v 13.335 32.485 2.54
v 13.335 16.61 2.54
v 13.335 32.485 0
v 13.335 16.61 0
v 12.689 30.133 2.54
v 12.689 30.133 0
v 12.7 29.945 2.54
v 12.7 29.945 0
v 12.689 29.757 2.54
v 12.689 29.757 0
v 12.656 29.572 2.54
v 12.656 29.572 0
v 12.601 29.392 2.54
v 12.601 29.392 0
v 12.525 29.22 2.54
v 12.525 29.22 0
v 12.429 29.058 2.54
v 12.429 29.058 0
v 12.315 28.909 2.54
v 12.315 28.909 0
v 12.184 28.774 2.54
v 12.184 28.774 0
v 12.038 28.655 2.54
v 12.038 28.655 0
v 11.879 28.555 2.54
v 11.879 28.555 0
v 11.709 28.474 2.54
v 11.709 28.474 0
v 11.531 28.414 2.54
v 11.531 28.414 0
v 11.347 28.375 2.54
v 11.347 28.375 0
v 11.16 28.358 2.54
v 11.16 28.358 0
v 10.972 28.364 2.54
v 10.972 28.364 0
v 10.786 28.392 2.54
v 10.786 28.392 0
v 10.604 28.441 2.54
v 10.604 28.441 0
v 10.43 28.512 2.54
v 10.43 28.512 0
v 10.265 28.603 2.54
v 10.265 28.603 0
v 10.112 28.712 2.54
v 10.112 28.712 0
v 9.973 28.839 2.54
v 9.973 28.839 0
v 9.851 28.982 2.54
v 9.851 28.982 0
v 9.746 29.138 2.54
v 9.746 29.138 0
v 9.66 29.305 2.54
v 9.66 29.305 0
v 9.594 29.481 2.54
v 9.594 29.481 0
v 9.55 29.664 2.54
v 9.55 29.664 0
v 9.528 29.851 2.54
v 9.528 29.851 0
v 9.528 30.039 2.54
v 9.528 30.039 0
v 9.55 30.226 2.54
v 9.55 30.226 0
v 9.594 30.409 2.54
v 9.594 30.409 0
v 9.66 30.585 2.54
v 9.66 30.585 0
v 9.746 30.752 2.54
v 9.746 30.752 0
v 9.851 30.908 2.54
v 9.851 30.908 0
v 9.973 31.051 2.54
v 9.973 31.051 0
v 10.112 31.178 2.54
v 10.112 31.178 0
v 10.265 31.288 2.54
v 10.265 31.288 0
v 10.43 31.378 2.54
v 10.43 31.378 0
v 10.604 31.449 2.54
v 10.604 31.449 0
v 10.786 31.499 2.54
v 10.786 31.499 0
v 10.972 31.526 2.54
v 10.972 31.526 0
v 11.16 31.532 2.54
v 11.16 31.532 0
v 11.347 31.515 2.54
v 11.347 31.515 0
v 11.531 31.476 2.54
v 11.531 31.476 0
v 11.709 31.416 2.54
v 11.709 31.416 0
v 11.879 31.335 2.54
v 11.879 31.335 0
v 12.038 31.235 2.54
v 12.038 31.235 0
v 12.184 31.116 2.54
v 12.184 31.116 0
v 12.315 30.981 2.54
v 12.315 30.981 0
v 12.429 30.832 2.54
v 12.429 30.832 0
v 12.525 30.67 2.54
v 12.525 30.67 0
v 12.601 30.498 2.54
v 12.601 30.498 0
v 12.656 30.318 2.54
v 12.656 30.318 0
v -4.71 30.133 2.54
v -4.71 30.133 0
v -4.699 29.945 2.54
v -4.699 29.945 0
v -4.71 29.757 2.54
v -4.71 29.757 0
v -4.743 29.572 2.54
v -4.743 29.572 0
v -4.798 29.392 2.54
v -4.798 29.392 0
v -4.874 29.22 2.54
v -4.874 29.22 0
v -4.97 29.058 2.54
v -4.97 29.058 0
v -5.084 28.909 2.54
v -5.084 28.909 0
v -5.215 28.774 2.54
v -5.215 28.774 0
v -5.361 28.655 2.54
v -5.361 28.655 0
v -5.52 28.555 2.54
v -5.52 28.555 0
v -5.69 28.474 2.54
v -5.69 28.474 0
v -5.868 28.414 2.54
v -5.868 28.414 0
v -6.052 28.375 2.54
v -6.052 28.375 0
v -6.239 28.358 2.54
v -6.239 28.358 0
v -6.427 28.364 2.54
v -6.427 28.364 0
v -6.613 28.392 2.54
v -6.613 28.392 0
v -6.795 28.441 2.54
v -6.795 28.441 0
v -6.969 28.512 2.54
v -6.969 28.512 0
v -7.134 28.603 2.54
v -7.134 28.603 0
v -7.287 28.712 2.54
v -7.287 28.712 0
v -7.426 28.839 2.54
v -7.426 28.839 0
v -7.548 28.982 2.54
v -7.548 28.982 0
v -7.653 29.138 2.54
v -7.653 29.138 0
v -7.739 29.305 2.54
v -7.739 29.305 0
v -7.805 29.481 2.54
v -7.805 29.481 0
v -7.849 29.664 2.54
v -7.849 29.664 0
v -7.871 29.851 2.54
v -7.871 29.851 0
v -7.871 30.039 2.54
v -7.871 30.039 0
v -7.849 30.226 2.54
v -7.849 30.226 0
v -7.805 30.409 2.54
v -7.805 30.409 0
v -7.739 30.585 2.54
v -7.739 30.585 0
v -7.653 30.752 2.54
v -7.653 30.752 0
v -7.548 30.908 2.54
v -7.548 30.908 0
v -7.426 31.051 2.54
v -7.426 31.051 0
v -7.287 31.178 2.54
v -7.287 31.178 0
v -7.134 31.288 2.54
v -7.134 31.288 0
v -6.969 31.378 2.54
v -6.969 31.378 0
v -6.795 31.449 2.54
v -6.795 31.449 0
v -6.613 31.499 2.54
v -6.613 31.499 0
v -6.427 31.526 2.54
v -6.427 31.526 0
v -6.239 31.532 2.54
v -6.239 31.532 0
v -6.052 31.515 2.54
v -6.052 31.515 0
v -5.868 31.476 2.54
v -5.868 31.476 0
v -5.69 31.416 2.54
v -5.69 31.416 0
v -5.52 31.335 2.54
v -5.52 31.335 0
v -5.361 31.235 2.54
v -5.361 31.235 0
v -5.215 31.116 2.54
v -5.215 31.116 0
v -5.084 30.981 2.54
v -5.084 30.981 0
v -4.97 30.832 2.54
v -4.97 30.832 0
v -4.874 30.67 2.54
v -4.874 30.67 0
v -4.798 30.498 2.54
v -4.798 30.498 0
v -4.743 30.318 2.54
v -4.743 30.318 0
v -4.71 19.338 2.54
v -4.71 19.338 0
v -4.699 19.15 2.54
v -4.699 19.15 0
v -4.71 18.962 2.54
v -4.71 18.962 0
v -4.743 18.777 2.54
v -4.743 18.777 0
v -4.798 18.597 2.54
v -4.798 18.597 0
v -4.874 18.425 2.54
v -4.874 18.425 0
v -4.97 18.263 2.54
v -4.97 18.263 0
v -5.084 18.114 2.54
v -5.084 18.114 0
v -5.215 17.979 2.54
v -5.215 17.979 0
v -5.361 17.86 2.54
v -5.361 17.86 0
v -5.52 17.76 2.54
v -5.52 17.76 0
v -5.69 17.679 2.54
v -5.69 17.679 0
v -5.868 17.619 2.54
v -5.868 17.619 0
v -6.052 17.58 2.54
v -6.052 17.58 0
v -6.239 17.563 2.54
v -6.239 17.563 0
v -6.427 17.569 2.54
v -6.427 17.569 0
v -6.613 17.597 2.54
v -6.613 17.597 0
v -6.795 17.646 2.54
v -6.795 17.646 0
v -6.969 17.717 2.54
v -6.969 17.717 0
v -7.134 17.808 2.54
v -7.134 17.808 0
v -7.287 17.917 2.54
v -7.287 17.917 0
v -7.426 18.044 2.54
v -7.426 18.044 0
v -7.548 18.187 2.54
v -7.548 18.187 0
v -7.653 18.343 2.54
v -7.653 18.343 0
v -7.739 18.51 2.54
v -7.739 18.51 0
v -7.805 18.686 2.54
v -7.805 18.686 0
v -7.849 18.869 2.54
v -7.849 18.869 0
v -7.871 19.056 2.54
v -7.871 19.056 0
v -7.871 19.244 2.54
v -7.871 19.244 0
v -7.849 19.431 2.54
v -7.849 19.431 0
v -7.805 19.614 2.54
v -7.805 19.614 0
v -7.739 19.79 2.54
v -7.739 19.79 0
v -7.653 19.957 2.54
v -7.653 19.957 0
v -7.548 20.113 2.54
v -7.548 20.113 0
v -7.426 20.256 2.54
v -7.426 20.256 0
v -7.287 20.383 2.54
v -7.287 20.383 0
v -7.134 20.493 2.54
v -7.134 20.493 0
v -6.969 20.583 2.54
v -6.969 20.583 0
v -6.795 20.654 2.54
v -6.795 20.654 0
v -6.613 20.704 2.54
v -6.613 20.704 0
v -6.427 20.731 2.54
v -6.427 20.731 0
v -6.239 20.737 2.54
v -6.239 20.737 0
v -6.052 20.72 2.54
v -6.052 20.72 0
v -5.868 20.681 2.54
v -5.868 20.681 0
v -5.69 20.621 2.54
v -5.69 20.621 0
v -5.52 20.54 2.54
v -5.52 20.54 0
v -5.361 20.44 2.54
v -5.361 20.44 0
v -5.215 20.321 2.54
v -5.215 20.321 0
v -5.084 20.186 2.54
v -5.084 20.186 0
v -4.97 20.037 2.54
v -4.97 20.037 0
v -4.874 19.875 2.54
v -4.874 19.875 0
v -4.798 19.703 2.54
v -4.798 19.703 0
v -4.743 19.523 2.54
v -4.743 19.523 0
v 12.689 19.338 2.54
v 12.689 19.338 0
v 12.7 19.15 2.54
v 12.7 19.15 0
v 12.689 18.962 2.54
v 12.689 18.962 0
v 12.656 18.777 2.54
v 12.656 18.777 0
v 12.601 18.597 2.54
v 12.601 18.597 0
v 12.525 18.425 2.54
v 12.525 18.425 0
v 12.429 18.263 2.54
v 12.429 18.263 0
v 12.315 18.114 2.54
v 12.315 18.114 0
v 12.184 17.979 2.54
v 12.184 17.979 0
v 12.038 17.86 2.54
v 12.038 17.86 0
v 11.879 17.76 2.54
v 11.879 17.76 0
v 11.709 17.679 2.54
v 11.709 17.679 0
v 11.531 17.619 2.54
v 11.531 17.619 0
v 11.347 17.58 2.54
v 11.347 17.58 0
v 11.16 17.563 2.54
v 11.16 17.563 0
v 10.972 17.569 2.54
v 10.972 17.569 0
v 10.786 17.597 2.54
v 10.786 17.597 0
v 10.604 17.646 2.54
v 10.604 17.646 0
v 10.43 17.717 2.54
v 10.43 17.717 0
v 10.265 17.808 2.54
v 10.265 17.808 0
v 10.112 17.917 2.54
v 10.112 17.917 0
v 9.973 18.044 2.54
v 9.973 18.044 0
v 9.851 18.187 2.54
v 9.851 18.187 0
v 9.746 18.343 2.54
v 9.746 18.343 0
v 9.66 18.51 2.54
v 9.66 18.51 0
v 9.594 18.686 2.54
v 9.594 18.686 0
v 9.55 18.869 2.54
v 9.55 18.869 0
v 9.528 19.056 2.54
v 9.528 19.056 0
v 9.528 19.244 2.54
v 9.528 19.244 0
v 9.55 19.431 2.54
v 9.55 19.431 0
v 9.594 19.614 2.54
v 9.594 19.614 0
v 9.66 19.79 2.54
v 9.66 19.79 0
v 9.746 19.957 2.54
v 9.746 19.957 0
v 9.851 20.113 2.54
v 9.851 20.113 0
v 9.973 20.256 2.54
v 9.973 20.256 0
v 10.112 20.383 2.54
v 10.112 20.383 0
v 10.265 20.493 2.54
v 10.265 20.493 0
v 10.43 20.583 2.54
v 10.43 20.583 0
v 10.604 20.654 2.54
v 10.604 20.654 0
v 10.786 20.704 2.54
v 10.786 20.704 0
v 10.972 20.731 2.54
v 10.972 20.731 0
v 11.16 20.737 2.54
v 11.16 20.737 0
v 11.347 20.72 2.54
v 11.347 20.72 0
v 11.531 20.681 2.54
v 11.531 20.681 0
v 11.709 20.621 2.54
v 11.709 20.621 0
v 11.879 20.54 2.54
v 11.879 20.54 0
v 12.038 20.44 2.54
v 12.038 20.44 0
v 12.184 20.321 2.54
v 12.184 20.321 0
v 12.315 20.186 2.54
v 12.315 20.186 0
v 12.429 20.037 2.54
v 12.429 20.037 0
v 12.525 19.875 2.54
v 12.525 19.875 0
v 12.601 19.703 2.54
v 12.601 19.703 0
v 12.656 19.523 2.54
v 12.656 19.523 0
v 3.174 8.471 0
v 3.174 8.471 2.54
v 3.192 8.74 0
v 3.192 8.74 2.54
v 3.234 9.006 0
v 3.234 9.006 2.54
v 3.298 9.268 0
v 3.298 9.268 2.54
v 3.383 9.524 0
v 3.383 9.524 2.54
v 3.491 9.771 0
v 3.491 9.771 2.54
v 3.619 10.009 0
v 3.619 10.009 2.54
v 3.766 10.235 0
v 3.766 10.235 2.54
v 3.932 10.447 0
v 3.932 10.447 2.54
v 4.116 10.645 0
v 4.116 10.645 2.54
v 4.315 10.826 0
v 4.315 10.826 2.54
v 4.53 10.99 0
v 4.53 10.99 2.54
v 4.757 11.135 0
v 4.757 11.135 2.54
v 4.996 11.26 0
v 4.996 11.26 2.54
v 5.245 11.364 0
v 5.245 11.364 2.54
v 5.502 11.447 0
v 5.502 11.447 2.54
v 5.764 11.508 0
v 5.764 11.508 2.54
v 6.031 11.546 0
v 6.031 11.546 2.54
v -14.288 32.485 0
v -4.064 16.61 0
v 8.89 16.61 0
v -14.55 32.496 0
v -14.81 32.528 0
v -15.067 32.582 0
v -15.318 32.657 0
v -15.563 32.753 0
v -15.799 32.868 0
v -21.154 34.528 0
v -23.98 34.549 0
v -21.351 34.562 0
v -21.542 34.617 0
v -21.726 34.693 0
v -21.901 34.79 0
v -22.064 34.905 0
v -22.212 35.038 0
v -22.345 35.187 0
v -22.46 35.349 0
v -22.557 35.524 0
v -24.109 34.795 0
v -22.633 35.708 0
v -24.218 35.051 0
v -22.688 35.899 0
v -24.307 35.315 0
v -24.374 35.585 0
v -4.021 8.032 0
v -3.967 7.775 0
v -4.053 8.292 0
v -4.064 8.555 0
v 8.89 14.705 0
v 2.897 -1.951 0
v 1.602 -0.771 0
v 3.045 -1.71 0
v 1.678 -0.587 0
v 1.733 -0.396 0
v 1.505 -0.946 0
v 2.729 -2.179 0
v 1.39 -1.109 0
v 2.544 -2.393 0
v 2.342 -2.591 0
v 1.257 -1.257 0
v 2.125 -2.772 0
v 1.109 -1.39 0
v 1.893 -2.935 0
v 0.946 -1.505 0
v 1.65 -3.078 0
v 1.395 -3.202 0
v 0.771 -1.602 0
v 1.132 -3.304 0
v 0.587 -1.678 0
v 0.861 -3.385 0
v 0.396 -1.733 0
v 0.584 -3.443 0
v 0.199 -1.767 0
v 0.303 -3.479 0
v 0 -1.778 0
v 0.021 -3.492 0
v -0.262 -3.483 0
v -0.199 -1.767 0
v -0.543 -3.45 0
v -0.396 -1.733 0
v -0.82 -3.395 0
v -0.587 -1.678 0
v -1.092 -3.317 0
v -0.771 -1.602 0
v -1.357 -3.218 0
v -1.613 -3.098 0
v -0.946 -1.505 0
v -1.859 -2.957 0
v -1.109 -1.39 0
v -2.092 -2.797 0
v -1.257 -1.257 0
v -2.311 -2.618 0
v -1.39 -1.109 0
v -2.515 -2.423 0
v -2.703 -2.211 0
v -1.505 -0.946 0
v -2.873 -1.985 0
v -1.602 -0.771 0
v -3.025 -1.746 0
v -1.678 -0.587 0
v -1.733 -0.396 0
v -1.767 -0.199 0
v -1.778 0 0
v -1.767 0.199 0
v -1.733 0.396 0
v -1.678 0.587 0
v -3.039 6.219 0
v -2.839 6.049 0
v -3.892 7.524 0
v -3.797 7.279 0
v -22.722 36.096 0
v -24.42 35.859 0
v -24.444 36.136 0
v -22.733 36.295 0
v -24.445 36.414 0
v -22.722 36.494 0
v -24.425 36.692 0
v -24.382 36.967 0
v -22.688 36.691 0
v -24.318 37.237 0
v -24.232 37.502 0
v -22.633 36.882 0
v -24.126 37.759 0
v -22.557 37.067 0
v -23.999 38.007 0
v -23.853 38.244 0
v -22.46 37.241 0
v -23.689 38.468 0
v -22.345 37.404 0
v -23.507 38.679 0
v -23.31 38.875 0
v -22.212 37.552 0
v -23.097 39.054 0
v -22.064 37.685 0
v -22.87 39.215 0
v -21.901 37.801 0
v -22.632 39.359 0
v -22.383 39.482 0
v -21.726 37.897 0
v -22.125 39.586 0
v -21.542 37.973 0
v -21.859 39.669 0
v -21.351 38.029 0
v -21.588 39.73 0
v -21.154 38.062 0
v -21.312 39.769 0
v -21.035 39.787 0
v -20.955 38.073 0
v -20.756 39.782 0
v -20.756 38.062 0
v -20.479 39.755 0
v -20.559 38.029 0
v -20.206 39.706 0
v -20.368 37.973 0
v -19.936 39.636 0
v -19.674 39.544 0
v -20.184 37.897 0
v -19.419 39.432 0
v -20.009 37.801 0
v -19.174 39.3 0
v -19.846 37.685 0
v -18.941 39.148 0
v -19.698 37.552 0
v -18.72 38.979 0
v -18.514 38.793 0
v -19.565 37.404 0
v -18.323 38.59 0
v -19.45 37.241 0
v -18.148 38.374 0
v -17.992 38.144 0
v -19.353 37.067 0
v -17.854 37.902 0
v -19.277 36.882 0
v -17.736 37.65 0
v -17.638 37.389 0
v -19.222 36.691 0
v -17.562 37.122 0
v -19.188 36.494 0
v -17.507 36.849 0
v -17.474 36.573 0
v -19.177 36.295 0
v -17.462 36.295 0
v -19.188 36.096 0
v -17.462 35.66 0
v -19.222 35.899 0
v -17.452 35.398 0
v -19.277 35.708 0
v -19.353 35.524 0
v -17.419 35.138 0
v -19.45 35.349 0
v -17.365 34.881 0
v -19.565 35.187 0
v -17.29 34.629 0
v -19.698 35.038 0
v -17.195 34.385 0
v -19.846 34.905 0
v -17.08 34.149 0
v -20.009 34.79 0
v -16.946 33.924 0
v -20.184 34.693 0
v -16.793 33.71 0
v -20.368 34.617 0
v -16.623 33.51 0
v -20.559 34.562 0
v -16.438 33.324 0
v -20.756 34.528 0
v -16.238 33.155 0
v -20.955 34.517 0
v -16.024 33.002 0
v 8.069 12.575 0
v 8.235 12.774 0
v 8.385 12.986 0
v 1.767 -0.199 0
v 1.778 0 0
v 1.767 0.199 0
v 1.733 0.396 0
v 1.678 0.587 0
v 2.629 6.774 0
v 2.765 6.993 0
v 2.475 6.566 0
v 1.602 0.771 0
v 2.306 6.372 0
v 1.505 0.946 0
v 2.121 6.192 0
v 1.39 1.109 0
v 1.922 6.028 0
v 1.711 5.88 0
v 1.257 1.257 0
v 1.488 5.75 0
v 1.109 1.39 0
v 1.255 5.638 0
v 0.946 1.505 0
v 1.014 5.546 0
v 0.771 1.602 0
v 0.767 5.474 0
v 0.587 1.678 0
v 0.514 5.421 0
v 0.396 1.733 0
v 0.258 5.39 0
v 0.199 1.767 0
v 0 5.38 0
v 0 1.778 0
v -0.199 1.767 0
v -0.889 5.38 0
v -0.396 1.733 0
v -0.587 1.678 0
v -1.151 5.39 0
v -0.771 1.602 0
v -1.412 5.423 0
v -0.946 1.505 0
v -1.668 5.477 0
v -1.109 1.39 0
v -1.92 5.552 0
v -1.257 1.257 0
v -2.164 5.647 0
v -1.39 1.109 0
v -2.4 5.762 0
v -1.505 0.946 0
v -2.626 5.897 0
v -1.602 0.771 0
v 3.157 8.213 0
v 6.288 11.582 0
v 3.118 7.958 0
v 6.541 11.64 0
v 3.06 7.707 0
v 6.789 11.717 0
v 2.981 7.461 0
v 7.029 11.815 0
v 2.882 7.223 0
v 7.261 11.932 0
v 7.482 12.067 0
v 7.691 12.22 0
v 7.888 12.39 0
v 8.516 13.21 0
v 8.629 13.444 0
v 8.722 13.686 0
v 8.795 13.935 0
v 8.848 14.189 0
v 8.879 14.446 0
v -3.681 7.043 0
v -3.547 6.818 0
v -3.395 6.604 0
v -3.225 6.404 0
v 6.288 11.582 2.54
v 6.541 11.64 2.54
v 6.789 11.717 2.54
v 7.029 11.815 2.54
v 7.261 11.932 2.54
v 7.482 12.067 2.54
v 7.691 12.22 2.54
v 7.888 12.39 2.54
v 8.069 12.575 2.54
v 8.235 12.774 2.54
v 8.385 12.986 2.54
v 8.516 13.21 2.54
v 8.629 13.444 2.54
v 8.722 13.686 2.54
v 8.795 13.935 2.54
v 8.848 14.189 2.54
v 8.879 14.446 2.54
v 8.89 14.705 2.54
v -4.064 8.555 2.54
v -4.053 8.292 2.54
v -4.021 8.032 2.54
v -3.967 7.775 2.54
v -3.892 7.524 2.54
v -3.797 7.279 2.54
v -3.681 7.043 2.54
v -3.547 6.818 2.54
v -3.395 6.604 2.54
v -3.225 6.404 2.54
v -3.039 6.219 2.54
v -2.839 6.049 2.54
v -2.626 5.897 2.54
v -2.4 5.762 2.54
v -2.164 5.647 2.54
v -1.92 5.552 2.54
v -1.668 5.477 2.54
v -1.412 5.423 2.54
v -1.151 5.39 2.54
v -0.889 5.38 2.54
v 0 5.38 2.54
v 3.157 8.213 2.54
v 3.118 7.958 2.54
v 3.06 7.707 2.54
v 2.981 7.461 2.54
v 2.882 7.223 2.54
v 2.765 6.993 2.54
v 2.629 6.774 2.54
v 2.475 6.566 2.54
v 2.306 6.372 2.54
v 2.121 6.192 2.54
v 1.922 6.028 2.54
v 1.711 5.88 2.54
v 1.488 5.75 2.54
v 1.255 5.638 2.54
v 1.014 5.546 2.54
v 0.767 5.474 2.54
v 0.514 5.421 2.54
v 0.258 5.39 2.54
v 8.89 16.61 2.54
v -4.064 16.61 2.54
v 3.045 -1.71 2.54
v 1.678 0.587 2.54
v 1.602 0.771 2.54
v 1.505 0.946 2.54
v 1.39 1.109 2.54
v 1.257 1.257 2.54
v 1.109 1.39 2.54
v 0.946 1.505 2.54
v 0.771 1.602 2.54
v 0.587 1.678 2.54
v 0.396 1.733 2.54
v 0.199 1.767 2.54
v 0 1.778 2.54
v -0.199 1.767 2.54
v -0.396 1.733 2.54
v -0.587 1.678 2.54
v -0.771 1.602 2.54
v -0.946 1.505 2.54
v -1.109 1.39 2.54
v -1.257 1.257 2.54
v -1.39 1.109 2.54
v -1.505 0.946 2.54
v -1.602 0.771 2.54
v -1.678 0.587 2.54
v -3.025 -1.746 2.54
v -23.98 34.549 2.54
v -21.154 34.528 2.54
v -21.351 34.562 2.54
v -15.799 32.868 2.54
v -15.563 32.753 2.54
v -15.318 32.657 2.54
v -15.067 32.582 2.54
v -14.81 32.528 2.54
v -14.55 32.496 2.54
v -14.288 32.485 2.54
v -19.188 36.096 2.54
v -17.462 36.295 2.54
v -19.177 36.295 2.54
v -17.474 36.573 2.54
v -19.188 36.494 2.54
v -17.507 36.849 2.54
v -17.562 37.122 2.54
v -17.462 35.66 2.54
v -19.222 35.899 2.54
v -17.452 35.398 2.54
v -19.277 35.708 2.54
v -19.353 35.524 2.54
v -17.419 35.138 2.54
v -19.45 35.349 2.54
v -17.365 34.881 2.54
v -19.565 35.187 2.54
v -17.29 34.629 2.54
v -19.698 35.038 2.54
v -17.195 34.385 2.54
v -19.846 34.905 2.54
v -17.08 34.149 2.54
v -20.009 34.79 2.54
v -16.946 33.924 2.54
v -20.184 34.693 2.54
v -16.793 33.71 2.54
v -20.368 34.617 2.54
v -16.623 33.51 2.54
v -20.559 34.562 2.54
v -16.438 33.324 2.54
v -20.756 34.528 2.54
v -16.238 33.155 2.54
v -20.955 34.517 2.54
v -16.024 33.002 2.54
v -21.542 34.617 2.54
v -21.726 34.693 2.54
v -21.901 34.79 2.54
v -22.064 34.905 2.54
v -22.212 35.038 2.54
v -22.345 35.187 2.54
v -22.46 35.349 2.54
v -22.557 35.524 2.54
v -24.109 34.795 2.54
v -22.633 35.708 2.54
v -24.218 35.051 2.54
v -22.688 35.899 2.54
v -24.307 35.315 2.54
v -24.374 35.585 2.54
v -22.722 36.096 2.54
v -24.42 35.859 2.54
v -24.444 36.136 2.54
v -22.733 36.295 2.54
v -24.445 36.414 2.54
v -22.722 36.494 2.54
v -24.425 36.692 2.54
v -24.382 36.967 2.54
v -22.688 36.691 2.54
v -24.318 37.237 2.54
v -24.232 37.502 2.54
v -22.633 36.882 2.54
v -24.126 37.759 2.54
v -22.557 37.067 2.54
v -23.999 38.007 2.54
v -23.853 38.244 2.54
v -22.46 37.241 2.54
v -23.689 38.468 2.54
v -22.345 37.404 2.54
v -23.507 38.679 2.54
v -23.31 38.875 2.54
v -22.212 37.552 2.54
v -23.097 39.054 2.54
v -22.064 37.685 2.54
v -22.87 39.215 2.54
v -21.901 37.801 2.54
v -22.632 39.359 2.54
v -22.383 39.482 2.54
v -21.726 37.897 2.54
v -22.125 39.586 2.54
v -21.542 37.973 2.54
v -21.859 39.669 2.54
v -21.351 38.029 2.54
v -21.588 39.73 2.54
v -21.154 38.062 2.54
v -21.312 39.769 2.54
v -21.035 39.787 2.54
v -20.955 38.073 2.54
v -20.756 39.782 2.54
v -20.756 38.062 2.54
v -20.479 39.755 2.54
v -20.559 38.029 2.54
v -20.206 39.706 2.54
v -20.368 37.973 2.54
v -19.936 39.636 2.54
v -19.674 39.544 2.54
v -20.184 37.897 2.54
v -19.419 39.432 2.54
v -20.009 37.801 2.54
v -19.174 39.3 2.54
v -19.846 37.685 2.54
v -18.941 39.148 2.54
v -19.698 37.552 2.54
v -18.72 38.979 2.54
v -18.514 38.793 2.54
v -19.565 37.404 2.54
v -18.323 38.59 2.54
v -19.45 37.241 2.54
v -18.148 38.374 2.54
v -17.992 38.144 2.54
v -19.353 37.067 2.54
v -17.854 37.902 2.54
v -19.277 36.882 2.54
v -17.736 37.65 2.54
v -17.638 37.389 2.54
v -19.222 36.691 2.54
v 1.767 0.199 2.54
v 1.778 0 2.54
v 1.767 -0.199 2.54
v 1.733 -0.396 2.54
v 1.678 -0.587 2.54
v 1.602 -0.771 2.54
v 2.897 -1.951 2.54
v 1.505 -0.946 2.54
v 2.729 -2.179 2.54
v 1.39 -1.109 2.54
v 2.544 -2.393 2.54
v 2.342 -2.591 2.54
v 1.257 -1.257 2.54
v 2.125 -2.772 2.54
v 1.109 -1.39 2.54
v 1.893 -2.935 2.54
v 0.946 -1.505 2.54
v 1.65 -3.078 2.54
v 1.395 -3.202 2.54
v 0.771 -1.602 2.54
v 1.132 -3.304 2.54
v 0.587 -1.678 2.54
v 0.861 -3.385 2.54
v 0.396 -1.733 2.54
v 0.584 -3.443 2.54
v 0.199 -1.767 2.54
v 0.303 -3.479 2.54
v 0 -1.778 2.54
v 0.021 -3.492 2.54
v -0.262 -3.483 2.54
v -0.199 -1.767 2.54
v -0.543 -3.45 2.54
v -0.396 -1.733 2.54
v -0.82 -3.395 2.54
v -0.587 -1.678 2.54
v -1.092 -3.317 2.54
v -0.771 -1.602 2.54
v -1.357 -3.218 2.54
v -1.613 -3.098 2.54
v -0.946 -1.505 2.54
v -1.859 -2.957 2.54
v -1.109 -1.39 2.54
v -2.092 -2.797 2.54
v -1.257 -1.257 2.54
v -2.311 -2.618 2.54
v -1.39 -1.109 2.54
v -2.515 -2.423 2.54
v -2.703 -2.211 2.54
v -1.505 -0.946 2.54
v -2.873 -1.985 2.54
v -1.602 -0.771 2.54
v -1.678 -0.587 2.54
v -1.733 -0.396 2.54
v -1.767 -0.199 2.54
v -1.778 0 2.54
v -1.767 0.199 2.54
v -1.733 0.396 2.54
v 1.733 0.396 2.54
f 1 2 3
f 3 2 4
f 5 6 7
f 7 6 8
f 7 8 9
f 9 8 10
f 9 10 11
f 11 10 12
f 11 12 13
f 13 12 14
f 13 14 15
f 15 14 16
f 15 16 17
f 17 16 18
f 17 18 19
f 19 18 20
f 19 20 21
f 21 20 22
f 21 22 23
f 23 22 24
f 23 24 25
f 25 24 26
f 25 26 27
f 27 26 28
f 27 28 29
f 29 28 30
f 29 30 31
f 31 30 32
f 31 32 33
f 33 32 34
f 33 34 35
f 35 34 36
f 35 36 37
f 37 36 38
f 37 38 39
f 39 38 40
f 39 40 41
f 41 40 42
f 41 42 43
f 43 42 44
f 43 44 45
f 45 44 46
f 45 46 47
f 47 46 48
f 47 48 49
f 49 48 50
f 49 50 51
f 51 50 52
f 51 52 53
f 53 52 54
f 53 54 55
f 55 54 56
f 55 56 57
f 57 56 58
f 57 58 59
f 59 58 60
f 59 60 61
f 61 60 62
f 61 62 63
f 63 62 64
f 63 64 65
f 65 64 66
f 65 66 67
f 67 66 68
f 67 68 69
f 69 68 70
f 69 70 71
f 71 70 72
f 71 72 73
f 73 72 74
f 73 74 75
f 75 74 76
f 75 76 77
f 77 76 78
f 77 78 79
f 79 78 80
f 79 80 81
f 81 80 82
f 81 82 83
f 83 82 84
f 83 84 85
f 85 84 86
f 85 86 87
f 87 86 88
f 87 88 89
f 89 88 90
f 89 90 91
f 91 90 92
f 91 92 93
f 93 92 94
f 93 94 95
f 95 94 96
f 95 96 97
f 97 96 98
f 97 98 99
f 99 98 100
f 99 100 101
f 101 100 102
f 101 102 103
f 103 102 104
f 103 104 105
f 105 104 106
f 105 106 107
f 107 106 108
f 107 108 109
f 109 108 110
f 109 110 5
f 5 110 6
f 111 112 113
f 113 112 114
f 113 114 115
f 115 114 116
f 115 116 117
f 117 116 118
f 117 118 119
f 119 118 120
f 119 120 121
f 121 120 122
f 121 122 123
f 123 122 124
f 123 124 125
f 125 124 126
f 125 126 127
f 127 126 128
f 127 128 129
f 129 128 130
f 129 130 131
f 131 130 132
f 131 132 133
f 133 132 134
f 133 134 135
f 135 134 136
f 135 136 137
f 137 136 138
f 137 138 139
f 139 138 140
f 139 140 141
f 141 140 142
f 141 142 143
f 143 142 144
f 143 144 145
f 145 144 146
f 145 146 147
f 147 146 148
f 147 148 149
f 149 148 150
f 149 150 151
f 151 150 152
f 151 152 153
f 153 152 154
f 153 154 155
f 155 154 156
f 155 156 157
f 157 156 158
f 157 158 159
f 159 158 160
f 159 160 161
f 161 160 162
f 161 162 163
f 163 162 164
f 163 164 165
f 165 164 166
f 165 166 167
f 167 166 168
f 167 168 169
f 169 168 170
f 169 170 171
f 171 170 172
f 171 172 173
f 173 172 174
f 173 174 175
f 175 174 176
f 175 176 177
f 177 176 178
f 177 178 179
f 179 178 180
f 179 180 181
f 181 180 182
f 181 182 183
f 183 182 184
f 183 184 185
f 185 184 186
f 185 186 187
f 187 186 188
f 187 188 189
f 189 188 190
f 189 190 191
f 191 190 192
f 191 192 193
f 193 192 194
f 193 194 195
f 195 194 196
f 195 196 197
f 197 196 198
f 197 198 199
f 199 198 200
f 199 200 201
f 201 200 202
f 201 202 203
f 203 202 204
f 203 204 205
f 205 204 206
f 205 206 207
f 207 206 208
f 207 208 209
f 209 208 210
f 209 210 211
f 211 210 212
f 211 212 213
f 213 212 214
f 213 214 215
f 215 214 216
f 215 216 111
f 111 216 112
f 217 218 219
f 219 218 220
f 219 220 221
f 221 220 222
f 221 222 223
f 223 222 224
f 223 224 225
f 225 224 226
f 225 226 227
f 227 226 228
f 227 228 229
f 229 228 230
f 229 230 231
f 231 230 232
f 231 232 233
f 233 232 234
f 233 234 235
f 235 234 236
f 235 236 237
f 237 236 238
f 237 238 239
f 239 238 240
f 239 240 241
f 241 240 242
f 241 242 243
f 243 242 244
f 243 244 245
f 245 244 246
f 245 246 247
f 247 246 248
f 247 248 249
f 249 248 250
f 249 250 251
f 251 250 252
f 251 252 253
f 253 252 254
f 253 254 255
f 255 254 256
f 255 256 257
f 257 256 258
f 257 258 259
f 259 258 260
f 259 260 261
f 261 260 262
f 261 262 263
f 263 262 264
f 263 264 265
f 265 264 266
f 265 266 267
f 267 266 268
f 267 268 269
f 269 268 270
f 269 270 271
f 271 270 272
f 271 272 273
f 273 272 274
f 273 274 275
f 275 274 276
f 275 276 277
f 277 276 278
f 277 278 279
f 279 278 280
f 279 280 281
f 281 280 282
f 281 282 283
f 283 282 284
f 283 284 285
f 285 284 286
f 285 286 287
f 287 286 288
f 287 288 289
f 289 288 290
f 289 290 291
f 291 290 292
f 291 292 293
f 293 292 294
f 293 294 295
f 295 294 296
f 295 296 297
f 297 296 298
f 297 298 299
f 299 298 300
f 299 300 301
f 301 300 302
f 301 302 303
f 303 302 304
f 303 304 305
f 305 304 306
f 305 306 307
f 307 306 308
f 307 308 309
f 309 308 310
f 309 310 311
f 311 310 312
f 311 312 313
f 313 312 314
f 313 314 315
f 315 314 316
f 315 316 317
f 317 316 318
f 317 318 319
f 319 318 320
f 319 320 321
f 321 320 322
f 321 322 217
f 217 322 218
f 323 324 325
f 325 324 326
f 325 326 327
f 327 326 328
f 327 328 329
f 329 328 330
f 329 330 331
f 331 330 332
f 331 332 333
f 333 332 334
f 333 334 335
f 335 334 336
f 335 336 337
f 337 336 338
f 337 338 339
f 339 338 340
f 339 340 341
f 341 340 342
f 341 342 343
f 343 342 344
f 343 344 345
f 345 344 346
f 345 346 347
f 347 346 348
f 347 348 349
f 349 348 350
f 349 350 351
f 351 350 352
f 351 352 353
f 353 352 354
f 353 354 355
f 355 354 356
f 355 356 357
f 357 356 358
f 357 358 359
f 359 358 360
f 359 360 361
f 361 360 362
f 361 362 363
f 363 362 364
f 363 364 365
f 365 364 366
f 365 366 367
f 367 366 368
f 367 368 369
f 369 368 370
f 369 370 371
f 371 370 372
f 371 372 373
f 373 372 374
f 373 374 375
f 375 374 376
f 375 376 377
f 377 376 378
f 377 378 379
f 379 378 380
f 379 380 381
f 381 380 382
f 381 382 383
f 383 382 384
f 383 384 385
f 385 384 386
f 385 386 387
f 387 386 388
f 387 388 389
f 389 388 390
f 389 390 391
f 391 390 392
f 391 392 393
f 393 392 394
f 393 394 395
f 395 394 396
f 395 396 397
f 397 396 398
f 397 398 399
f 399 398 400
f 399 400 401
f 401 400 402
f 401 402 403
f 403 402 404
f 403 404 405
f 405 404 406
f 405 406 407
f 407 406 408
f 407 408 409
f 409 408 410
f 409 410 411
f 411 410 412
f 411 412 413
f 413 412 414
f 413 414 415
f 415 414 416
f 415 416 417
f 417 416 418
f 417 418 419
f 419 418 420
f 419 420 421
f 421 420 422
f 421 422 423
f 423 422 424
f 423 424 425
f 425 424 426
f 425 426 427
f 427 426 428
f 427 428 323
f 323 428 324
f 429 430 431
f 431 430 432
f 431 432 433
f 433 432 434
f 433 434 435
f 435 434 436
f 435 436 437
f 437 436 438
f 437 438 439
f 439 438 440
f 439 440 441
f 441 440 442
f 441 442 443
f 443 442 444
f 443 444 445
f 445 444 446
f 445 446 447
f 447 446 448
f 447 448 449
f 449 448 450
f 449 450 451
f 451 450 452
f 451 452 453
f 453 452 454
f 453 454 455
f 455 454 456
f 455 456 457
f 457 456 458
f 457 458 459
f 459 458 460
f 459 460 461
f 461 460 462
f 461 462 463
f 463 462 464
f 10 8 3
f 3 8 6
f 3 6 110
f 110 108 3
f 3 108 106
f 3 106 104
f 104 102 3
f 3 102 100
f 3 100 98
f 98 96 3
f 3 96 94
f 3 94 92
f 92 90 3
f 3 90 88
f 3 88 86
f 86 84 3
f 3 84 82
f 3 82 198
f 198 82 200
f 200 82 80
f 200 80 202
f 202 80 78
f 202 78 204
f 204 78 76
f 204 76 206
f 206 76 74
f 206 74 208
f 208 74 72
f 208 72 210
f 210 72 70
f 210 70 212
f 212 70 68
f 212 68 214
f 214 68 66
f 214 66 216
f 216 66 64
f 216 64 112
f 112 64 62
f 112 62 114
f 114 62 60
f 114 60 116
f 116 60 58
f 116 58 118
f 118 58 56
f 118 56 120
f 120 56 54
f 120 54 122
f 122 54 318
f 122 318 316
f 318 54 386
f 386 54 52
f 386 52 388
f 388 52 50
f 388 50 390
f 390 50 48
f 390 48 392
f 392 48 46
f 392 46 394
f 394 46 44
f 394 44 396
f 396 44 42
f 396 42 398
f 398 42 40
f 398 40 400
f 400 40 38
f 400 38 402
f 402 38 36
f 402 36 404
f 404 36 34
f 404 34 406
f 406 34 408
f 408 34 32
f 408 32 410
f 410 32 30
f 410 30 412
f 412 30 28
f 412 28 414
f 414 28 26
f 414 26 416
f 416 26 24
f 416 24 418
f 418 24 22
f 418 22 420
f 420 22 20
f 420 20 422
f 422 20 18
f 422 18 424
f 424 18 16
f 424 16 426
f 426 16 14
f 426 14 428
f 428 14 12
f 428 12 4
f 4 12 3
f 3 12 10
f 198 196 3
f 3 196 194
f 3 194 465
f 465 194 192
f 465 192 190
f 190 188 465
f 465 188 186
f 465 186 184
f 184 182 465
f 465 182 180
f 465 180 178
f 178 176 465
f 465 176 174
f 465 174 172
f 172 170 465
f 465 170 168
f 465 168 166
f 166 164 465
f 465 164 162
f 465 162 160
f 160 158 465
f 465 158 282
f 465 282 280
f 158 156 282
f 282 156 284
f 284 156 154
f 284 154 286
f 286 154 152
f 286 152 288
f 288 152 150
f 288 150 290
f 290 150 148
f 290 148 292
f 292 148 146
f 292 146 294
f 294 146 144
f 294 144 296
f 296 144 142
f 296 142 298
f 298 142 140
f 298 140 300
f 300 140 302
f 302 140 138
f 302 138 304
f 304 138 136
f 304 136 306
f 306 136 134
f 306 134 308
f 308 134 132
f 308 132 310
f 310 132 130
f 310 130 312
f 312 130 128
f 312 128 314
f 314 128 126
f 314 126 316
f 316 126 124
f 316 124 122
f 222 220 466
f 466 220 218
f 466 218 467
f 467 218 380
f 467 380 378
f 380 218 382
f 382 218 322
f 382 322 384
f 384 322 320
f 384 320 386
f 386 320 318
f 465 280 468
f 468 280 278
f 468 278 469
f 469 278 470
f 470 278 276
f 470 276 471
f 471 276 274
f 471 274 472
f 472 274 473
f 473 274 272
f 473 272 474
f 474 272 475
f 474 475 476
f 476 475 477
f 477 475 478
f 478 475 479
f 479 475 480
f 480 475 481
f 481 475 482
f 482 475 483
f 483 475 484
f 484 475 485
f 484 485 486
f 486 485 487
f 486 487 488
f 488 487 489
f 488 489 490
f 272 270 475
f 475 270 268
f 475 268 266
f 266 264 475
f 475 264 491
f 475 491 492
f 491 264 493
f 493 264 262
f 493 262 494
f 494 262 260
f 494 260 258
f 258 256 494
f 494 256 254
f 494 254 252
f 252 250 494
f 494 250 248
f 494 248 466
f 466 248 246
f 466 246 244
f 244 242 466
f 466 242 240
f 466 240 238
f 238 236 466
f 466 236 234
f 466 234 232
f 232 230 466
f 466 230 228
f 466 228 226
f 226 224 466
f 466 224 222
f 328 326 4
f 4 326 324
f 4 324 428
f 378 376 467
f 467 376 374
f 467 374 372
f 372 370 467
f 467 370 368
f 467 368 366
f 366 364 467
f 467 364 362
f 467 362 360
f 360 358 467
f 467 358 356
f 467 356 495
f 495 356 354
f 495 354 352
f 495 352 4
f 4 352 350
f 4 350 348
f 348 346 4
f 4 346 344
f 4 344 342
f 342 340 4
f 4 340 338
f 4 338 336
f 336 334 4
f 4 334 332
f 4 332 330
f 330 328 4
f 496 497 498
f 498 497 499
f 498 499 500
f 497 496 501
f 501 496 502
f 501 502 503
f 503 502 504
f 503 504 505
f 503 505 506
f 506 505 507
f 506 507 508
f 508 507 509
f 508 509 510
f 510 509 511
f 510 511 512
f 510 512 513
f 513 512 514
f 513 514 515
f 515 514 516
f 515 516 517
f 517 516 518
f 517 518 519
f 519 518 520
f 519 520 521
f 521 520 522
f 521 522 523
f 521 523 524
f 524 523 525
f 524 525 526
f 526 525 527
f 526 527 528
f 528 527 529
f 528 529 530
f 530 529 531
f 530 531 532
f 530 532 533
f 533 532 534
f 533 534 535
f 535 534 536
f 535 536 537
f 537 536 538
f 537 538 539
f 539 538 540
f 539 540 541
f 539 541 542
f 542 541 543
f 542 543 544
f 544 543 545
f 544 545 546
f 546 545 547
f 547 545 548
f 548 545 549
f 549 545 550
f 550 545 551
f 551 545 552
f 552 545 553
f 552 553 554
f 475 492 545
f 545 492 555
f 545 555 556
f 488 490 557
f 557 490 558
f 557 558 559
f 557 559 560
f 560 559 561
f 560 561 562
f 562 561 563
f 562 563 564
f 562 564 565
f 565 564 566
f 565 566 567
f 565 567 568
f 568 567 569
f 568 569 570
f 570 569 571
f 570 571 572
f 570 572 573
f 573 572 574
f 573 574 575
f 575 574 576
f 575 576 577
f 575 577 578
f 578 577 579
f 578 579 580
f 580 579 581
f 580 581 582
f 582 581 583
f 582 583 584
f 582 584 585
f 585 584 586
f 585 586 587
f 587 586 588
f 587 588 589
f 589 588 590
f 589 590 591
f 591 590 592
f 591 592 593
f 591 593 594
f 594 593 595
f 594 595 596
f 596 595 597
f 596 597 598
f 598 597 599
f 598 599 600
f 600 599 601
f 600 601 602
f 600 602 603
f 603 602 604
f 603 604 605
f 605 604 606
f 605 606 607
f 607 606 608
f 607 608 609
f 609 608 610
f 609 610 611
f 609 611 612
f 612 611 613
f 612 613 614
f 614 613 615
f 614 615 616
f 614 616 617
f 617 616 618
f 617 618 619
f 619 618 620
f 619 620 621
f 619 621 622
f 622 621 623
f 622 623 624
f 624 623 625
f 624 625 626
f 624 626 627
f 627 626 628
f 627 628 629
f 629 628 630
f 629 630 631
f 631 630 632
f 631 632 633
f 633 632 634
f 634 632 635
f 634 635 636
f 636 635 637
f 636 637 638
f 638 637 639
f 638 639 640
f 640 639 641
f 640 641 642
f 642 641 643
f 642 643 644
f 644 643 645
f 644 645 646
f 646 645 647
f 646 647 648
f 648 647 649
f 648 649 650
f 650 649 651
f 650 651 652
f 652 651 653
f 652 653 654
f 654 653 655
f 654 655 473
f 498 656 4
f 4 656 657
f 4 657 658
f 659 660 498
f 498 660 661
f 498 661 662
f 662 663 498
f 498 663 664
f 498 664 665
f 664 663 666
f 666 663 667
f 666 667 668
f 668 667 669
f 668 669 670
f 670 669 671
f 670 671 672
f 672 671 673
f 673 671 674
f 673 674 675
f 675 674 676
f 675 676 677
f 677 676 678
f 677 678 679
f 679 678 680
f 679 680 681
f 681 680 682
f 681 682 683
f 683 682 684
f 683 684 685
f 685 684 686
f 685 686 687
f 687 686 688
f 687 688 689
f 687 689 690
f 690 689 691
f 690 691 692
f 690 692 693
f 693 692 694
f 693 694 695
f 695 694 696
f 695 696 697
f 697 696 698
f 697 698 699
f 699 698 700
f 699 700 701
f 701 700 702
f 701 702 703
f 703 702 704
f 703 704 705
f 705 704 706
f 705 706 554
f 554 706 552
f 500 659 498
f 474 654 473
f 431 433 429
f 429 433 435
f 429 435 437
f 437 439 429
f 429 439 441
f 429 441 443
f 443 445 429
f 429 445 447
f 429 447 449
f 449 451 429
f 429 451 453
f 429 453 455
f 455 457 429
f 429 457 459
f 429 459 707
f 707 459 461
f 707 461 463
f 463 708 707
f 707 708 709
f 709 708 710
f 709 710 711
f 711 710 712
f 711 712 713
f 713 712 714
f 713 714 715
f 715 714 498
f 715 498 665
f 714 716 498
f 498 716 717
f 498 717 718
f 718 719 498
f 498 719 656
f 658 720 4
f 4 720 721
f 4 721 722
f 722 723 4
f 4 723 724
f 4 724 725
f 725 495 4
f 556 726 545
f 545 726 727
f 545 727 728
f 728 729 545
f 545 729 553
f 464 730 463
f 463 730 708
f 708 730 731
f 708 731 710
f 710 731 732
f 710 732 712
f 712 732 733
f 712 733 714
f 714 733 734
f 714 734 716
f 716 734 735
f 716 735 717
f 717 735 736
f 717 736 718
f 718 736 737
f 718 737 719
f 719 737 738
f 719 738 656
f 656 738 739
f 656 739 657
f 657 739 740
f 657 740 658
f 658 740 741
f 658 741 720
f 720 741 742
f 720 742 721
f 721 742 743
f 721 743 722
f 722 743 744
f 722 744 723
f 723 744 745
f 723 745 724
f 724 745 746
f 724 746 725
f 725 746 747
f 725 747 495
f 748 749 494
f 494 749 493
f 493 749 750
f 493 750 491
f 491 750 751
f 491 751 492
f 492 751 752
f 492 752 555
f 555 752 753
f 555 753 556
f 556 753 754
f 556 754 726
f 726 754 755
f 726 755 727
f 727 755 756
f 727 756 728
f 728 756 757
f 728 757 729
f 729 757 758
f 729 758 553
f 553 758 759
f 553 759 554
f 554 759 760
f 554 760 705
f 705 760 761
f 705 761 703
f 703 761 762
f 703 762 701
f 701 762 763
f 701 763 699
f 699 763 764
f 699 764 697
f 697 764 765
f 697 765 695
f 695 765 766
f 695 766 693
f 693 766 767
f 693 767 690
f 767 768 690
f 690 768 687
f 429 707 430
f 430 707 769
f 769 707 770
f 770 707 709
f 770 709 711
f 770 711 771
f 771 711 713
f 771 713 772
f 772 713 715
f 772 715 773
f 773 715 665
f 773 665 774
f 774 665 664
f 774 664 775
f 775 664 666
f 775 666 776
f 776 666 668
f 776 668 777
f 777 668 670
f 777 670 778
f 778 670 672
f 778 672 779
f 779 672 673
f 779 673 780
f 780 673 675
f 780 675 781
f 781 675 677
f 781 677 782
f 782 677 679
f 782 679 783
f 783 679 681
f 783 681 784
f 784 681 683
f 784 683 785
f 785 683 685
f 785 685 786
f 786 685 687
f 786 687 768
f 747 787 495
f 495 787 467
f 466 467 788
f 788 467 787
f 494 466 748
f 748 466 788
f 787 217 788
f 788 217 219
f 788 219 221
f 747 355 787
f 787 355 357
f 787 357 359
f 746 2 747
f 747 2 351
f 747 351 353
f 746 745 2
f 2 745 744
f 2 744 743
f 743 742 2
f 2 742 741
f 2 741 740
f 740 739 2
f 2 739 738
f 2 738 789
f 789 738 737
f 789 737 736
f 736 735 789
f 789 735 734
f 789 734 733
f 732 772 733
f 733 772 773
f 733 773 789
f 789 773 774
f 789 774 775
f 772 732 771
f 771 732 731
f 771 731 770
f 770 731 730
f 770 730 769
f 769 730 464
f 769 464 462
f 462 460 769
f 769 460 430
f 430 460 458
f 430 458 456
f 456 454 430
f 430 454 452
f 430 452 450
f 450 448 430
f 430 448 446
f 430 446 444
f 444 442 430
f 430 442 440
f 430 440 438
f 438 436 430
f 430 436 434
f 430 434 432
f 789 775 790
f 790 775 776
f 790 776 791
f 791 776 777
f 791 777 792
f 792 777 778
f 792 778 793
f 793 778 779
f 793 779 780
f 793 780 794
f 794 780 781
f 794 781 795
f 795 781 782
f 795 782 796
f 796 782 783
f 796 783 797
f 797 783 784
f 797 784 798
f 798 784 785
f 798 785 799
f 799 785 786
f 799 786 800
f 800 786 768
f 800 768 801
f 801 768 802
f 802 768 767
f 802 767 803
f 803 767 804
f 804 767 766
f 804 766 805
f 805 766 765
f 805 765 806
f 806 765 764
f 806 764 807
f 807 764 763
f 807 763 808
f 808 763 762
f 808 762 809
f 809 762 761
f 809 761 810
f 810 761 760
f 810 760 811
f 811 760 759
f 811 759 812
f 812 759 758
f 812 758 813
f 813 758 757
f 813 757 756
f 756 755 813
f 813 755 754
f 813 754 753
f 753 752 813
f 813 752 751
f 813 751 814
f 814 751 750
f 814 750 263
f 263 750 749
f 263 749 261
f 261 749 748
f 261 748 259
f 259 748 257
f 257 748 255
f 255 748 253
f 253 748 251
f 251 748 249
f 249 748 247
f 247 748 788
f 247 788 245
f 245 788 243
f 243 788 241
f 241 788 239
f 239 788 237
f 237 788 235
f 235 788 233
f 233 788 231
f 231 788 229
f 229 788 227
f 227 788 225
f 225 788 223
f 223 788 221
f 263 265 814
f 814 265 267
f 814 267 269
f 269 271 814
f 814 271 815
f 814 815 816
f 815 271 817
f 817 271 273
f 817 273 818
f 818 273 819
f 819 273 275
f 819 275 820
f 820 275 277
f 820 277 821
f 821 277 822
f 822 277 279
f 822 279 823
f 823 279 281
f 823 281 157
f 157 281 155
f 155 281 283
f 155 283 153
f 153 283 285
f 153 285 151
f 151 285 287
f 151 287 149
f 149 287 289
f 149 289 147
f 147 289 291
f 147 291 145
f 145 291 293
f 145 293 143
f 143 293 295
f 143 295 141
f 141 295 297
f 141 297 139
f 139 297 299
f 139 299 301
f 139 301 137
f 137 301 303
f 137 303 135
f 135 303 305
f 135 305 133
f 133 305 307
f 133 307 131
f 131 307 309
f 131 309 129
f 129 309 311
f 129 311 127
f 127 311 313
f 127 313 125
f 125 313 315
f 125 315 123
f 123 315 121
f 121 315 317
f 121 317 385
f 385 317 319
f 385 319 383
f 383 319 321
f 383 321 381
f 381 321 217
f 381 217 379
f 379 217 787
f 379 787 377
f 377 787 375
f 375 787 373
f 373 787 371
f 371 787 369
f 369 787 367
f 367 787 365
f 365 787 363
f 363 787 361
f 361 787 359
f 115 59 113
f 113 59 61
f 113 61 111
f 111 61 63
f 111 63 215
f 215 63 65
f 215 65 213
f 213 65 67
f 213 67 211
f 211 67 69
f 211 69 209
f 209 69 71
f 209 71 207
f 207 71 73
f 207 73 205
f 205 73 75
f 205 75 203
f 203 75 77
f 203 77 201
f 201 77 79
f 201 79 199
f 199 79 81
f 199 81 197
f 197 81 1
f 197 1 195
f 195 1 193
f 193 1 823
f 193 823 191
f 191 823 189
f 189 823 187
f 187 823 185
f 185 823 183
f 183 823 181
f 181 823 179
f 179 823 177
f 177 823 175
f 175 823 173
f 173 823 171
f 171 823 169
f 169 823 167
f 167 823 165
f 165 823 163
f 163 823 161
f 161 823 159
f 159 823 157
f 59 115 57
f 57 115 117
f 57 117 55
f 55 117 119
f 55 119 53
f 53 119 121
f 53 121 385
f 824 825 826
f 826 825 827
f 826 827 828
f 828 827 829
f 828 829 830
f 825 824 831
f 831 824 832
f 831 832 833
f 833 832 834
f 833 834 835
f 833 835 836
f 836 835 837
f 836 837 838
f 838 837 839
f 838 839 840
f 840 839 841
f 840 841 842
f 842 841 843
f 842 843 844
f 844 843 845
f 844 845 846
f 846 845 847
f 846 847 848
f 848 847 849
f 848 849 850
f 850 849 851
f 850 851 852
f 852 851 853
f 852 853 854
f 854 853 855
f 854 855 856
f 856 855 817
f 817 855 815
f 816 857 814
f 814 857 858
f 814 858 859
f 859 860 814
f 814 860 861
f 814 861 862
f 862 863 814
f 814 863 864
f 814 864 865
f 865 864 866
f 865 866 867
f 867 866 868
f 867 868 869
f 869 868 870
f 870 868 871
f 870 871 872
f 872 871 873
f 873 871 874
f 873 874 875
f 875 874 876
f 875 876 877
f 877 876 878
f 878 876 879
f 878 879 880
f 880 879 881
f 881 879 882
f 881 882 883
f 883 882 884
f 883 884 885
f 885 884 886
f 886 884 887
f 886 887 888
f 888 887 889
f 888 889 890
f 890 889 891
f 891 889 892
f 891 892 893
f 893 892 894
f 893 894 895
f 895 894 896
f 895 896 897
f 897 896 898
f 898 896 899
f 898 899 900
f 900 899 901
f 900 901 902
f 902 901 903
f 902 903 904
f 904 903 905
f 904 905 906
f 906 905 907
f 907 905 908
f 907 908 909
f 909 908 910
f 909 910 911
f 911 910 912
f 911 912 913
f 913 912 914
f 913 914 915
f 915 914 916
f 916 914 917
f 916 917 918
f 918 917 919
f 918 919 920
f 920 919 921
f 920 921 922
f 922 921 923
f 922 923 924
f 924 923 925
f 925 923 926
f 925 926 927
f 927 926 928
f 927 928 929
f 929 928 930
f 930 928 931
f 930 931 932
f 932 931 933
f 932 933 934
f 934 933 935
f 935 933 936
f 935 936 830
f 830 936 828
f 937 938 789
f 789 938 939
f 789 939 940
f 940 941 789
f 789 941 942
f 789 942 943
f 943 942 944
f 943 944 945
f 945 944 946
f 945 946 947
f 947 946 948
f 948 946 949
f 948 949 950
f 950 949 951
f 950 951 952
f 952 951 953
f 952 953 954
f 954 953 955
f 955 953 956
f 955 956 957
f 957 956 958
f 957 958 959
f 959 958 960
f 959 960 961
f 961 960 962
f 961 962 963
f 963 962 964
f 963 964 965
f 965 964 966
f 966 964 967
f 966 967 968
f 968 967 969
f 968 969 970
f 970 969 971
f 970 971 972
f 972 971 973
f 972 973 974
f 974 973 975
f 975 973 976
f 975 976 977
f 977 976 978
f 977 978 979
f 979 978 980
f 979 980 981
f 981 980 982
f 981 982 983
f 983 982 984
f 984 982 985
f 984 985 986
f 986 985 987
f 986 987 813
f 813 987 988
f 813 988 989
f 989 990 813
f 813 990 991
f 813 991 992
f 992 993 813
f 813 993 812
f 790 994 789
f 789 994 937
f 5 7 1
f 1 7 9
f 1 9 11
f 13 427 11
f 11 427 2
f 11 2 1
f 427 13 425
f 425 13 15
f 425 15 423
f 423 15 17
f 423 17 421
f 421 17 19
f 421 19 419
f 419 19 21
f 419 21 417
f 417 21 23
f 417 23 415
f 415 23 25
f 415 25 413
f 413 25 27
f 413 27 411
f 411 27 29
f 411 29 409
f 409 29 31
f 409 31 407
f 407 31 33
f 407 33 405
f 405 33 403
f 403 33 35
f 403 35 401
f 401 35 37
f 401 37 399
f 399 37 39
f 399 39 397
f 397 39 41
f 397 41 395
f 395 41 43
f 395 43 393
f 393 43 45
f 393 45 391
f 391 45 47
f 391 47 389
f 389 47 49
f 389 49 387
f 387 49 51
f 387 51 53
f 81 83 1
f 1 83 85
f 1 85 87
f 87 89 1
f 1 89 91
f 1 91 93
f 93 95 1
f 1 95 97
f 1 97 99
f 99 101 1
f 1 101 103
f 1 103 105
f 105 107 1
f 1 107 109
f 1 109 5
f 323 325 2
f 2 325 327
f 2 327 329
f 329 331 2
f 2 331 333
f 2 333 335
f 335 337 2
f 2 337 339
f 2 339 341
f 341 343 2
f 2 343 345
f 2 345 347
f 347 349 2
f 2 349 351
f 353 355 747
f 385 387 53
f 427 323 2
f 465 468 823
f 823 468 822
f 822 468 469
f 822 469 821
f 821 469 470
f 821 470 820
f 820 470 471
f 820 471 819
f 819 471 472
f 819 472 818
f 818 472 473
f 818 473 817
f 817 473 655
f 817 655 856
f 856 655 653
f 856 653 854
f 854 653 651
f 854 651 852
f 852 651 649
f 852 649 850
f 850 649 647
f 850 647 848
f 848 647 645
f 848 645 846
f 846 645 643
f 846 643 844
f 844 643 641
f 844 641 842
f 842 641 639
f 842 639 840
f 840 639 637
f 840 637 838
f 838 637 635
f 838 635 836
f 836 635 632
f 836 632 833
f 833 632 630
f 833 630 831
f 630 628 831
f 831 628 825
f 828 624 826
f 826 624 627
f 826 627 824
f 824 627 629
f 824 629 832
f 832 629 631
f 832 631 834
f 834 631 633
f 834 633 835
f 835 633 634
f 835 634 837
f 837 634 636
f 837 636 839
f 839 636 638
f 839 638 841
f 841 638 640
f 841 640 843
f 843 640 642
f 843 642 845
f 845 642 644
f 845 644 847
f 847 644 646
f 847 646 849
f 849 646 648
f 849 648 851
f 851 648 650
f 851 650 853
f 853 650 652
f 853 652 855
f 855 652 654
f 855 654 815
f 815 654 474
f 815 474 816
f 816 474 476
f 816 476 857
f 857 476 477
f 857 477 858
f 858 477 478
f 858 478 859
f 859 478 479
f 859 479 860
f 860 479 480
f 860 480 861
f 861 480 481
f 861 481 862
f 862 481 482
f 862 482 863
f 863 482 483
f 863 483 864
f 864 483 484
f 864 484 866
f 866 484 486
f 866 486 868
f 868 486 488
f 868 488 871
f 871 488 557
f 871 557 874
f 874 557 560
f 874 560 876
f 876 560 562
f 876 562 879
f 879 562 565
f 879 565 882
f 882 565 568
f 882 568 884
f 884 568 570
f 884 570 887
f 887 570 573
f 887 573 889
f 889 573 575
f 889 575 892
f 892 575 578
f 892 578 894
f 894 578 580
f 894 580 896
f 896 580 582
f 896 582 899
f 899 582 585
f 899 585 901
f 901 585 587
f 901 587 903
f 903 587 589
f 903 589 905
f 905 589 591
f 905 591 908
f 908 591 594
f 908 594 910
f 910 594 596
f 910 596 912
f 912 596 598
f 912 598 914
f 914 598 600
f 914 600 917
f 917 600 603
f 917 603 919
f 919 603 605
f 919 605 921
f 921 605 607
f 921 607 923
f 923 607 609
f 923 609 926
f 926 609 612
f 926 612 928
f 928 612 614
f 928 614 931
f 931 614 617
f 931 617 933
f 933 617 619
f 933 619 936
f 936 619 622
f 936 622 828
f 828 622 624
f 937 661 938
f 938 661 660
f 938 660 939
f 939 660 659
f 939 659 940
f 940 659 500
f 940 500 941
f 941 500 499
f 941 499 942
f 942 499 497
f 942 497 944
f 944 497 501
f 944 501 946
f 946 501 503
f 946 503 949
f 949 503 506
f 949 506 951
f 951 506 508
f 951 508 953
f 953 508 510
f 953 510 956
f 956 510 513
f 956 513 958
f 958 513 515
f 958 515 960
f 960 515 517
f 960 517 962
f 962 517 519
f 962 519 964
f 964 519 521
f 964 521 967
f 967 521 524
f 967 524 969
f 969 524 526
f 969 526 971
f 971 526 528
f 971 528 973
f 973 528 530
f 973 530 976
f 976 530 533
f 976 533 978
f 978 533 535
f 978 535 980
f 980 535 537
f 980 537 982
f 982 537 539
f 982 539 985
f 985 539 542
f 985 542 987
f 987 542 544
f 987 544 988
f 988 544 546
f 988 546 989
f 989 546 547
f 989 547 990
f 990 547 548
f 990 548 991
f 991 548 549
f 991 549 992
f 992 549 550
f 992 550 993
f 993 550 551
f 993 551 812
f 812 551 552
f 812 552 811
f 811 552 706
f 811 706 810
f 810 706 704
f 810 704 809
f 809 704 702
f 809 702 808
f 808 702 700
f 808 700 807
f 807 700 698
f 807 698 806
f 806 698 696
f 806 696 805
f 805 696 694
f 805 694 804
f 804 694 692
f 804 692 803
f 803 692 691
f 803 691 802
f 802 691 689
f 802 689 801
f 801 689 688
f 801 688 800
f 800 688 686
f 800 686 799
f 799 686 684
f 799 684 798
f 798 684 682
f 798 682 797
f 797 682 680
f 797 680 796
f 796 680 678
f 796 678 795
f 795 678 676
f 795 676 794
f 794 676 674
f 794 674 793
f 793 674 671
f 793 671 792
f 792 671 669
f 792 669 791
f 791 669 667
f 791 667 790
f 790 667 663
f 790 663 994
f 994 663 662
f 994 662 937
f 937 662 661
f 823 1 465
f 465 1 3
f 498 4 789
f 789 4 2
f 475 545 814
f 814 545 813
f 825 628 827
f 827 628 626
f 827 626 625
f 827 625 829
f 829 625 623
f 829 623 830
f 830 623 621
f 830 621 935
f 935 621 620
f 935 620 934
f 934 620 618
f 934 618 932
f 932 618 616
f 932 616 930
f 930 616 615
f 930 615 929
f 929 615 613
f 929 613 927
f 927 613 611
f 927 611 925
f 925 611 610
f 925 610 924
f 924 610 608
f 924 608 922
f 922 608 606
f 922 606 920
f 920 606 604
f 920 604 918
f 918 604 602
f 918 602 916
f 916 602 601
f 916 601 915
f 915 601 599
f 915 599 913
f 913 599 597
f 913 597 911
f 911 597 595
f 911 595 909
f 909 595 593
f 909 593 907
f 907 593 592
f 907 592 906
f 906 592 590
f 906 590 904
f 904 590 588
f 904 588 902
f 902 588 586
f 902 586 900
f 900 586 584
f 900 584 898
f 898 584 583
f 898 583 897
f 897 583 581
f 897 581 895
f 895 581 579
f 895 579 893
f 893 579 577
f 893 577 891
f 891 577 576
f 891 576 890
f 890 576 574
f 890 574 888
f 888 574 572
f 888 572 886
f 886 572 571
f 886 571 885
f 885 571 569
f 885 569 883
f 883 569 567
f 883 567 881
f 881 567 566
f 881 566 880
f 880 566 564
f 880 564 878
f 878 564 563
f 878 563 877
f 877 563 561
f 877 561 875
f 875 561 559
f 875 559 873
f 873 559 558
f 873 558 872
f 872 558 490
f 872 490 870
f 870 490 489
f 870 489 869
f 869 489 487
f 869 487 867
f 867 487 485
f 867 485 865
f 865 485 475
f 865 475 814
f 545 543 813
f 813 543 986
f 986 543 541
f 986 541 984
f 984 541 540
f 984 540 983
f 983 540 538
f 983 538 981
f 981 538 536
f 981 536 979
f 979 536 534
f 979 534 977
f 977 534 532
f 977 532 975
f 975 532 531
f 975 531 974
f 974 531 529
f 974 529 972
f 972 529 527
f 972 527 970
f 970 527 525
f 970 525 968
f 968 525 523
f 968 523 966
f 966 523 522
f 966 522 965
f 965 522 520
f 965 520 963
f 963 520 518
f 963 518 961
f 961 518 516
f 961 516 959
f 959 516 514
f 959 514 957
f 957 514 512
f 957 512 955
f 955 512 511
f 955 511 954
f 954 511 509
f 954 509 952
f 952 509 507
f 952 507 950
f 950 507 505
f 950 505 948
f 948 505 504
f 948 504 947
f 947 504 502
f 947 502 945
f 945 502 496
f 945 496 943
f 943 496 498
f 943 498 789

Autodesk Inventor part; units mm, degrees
ref_plane "YZ Plane" through (0, 0, 0) normal (1, 0, 0) x (0, 1, 0)
ref_plane "XZ Plane" through (0, 0, 0) normal (0, 1, 0) x (-1, 0, 0)
ref_plane "XY Plane" through (0, 0, 0) normal (0, 0, 1) x (1, 0, 0)
sketch "Sketch1" plane through (0, 0, 0) normal (0, 0, 1) x (1, 0, 0)
  circle A0 centre (0, 0) radius 3.4925
  circle A1 centre (-20.955, 36.2951) radius 3.4925
  line L0 (0, 0) -> (-43.0857, 0) construction
  circle A2 centre (-20.955, 36.2951) radius 1.778
  circle A3 centre (0, 0) radius 1.778
  line L1 (-17.4625, 36.2951) -> (-17.4625, 32.4851)
  line L2 (-17.4625, 32.4851) -> (13.335, 32.4851)
  line L3 (13.335, 32.4851) -> (13.335, 16.6101)
  line L4 (13.335, 16.6101) -> (3.0451, -1.7103)
  line L5 (-23.9796, 34.5489) -> (-3.0246, -1.7463)
  dimension "d0" = 6.985
  dimension "d1" = 6.985
  dimension "d2" = 41.91
  dimension "d3" = 60
  dimension "d5" = 3.556
  dimension "d6" = 3.556
  dimension "d7" = 3.81
  dimension "d8" = 34.29
  dimension "d29" = 15.875
extrude "Extrusion1" add sketch "Sketch1" along normal blind 2.54
sketch "Sketch3" plane through (0, 0, 2.54) normal (0, 0, 1) x (1, 0, 0)
  circle A0 centre (-20.955, 36.2951) radius 1.778 construction
  circle A1 centre (0, 0) radius 1.778 construction
  arc A2 (-3.0246, -1.7463) -> (3.0451, -1.7103) centre (0, 0) ccw construction
  line L0 (3.0451, -1.7103) -> (13.335, 16.6101) construction
  line L1 (13.335, 16.6101) -> (13.335, 32.4851) construction
  line L2 (13.335, 32.4851) -> (-17.4625, 32.4851) construction
  line L3 (-17.4625, 32.4851) -> (-17.4625, 36.2951) construction
  arc A3 (-17.4625, 36.2951) -> (-23.9796, 34.5489) centre (-20.955, 36.2951) ccw construction
  line L4 (-23.9796, 34.5489) -> (-3.0246, -1.7463) construction
  line L5 (13.335, 16.6101) -> (13.335, 32.4851) projected
  line L6 (13.335, 32.4851) -> (8.89, 32.4851)
  line L7 (8.89, 32.4851) -> (8.89, 16.6101)
  line L8 (8.89, 16.6101) -> (13.335, 16.6101)
  line L9 (13.335, 16.6101) -> (13.335, 32.4851)
  line L10 (-4.064, 32.4851) -> (-8.509, 32.4851)
  line L11 (-8.509, 32.4851) -> (-8.509, 16.6101)
  line L12 (-8.509, 16.6101) -> (-4.064, 16.6101)
  line L13 (-4.064, 16.6101) -> (-4.064, 32.4851)
  line L14 (8.89, 16.6101) -> (-4.064, 16.6101) construction
  dimension "d11" = 4.445
  dimension "d12" = 12.954
extrude "Extrusion2" add sketch "Sketch3" along normal blind 5.334
fillet "Fillet1" radius 3.175 1 edges at (-17.4625, 32.4851, 1.27)
sketch "Sketch4" plane through (0, 0, 2.54) normal (0, 0, 1) x (1, 0, 0)
  line L0 (-4.064, 32.4851) -> (-4.064, 16.6101) projected
  line L1 (-4.064, 16.6101) -> (8.89, 16.6101)
  line L2 (8.89, 16.6101) -> (8.89, 11.5301)
  line L3 (8.89, 11.5301) -> (-4.064, 11.5301)
  line L4 (-4.064, 11.5301) -> (-4.064, 16.6101)
  line L5 (-4.064, 11.5301) -> (3.175, 11.5301)
  line L6 (3.175, 11.5301) -> (3.175, 5.3796)
  line L7 (3.175, 5.3796) -> (-4.064, 5.3796)
  line L8 (-4.064, 5.3796) -> (-4.064, 11.5301)
  point P0 (0, 0)
  dimension "d16" = 5.08
  dimension "d17" = 7.239
extrude "Extrusion3" cut sketch "Sketch4" against normal through all
fillet "Fillet2" radius 3.175 4 edges at (8.89, 11.5301, 1.27) (3.175, 5.3796, 1.27) (-4.064, 5.3796, 1.27) (3.175, 11.5301, 1.27)
sketch "Sketch5" plane through (0, 0, 7.874) normal (0, 0, 1) x (1, 0, 0)
  circle A0 centre (-6.2865, 29.9451) radius 1.5875
  circle A1 centre (-6.2865, 19.1501) radius 1.5875
  circle A2 centre (11.1125, 29.9451) radius 1.5875
  circle A3 centre (11.1125, 19.1501) radius 1.5875
  line L0 (-4.064, 32.4851) -> (-8.509, 32.4851) construction
  line L1 (-8.509, 32.4851) -> (-8.509, 16.6101) construction
  line L2 (-8.509, 16.6101) -> (-4.064, 16.6101) construction
  line L3 (-4.064, 16.6101) -> (-4.064, 32.4851) construction
  line L4 (13.335, 32.4851) -> (8.89, 32.4851) construction
  line L5 (8.89, 32.4851) -> (8.89, 16.6101) construction
  line L6 (8.89, 16.6101) -> (13.335, 16.6101) construction
  line L7 (13.335, 16.6101) -> (13.335, 32.4851) construction
  point P0 (0, 0)
  point P1 (-6.2865, 32.4851)
  point P2 (11.1125, 32.4851)
  dimension "d21" = 3.175
  dimension "d22" = 3.175
  dimension "d23" = 3.175
  dimension "d24" = 3.175
  dimension "d25" = 2.54
  dimension "d26" = 2.54
extrude "Extrusion4" cut sketch "Sketch5" against normal through all
sketch "Sketch7" plane through (0, 0, 2.54) normal (0, 0, 1) x (1, 0, 0)
  line L0 (-34.1743, 47.2868) -> (24.1681, 47.2868)
  line L1 (24.1681, 47.2868) -> (24.1681, -8.7063)
  line L2 (24.1681, -8.7063) -> (-34.1743, -8.7063)
  line L3 (-34.1743, -8.7063) -> (-34.1743, 47.2868)
  point P0 (0, 0)
extrude "Extrusion6" cut sketch "Sketch7" along normal blind 25.4
properties part number "ribbonCableMount2"
